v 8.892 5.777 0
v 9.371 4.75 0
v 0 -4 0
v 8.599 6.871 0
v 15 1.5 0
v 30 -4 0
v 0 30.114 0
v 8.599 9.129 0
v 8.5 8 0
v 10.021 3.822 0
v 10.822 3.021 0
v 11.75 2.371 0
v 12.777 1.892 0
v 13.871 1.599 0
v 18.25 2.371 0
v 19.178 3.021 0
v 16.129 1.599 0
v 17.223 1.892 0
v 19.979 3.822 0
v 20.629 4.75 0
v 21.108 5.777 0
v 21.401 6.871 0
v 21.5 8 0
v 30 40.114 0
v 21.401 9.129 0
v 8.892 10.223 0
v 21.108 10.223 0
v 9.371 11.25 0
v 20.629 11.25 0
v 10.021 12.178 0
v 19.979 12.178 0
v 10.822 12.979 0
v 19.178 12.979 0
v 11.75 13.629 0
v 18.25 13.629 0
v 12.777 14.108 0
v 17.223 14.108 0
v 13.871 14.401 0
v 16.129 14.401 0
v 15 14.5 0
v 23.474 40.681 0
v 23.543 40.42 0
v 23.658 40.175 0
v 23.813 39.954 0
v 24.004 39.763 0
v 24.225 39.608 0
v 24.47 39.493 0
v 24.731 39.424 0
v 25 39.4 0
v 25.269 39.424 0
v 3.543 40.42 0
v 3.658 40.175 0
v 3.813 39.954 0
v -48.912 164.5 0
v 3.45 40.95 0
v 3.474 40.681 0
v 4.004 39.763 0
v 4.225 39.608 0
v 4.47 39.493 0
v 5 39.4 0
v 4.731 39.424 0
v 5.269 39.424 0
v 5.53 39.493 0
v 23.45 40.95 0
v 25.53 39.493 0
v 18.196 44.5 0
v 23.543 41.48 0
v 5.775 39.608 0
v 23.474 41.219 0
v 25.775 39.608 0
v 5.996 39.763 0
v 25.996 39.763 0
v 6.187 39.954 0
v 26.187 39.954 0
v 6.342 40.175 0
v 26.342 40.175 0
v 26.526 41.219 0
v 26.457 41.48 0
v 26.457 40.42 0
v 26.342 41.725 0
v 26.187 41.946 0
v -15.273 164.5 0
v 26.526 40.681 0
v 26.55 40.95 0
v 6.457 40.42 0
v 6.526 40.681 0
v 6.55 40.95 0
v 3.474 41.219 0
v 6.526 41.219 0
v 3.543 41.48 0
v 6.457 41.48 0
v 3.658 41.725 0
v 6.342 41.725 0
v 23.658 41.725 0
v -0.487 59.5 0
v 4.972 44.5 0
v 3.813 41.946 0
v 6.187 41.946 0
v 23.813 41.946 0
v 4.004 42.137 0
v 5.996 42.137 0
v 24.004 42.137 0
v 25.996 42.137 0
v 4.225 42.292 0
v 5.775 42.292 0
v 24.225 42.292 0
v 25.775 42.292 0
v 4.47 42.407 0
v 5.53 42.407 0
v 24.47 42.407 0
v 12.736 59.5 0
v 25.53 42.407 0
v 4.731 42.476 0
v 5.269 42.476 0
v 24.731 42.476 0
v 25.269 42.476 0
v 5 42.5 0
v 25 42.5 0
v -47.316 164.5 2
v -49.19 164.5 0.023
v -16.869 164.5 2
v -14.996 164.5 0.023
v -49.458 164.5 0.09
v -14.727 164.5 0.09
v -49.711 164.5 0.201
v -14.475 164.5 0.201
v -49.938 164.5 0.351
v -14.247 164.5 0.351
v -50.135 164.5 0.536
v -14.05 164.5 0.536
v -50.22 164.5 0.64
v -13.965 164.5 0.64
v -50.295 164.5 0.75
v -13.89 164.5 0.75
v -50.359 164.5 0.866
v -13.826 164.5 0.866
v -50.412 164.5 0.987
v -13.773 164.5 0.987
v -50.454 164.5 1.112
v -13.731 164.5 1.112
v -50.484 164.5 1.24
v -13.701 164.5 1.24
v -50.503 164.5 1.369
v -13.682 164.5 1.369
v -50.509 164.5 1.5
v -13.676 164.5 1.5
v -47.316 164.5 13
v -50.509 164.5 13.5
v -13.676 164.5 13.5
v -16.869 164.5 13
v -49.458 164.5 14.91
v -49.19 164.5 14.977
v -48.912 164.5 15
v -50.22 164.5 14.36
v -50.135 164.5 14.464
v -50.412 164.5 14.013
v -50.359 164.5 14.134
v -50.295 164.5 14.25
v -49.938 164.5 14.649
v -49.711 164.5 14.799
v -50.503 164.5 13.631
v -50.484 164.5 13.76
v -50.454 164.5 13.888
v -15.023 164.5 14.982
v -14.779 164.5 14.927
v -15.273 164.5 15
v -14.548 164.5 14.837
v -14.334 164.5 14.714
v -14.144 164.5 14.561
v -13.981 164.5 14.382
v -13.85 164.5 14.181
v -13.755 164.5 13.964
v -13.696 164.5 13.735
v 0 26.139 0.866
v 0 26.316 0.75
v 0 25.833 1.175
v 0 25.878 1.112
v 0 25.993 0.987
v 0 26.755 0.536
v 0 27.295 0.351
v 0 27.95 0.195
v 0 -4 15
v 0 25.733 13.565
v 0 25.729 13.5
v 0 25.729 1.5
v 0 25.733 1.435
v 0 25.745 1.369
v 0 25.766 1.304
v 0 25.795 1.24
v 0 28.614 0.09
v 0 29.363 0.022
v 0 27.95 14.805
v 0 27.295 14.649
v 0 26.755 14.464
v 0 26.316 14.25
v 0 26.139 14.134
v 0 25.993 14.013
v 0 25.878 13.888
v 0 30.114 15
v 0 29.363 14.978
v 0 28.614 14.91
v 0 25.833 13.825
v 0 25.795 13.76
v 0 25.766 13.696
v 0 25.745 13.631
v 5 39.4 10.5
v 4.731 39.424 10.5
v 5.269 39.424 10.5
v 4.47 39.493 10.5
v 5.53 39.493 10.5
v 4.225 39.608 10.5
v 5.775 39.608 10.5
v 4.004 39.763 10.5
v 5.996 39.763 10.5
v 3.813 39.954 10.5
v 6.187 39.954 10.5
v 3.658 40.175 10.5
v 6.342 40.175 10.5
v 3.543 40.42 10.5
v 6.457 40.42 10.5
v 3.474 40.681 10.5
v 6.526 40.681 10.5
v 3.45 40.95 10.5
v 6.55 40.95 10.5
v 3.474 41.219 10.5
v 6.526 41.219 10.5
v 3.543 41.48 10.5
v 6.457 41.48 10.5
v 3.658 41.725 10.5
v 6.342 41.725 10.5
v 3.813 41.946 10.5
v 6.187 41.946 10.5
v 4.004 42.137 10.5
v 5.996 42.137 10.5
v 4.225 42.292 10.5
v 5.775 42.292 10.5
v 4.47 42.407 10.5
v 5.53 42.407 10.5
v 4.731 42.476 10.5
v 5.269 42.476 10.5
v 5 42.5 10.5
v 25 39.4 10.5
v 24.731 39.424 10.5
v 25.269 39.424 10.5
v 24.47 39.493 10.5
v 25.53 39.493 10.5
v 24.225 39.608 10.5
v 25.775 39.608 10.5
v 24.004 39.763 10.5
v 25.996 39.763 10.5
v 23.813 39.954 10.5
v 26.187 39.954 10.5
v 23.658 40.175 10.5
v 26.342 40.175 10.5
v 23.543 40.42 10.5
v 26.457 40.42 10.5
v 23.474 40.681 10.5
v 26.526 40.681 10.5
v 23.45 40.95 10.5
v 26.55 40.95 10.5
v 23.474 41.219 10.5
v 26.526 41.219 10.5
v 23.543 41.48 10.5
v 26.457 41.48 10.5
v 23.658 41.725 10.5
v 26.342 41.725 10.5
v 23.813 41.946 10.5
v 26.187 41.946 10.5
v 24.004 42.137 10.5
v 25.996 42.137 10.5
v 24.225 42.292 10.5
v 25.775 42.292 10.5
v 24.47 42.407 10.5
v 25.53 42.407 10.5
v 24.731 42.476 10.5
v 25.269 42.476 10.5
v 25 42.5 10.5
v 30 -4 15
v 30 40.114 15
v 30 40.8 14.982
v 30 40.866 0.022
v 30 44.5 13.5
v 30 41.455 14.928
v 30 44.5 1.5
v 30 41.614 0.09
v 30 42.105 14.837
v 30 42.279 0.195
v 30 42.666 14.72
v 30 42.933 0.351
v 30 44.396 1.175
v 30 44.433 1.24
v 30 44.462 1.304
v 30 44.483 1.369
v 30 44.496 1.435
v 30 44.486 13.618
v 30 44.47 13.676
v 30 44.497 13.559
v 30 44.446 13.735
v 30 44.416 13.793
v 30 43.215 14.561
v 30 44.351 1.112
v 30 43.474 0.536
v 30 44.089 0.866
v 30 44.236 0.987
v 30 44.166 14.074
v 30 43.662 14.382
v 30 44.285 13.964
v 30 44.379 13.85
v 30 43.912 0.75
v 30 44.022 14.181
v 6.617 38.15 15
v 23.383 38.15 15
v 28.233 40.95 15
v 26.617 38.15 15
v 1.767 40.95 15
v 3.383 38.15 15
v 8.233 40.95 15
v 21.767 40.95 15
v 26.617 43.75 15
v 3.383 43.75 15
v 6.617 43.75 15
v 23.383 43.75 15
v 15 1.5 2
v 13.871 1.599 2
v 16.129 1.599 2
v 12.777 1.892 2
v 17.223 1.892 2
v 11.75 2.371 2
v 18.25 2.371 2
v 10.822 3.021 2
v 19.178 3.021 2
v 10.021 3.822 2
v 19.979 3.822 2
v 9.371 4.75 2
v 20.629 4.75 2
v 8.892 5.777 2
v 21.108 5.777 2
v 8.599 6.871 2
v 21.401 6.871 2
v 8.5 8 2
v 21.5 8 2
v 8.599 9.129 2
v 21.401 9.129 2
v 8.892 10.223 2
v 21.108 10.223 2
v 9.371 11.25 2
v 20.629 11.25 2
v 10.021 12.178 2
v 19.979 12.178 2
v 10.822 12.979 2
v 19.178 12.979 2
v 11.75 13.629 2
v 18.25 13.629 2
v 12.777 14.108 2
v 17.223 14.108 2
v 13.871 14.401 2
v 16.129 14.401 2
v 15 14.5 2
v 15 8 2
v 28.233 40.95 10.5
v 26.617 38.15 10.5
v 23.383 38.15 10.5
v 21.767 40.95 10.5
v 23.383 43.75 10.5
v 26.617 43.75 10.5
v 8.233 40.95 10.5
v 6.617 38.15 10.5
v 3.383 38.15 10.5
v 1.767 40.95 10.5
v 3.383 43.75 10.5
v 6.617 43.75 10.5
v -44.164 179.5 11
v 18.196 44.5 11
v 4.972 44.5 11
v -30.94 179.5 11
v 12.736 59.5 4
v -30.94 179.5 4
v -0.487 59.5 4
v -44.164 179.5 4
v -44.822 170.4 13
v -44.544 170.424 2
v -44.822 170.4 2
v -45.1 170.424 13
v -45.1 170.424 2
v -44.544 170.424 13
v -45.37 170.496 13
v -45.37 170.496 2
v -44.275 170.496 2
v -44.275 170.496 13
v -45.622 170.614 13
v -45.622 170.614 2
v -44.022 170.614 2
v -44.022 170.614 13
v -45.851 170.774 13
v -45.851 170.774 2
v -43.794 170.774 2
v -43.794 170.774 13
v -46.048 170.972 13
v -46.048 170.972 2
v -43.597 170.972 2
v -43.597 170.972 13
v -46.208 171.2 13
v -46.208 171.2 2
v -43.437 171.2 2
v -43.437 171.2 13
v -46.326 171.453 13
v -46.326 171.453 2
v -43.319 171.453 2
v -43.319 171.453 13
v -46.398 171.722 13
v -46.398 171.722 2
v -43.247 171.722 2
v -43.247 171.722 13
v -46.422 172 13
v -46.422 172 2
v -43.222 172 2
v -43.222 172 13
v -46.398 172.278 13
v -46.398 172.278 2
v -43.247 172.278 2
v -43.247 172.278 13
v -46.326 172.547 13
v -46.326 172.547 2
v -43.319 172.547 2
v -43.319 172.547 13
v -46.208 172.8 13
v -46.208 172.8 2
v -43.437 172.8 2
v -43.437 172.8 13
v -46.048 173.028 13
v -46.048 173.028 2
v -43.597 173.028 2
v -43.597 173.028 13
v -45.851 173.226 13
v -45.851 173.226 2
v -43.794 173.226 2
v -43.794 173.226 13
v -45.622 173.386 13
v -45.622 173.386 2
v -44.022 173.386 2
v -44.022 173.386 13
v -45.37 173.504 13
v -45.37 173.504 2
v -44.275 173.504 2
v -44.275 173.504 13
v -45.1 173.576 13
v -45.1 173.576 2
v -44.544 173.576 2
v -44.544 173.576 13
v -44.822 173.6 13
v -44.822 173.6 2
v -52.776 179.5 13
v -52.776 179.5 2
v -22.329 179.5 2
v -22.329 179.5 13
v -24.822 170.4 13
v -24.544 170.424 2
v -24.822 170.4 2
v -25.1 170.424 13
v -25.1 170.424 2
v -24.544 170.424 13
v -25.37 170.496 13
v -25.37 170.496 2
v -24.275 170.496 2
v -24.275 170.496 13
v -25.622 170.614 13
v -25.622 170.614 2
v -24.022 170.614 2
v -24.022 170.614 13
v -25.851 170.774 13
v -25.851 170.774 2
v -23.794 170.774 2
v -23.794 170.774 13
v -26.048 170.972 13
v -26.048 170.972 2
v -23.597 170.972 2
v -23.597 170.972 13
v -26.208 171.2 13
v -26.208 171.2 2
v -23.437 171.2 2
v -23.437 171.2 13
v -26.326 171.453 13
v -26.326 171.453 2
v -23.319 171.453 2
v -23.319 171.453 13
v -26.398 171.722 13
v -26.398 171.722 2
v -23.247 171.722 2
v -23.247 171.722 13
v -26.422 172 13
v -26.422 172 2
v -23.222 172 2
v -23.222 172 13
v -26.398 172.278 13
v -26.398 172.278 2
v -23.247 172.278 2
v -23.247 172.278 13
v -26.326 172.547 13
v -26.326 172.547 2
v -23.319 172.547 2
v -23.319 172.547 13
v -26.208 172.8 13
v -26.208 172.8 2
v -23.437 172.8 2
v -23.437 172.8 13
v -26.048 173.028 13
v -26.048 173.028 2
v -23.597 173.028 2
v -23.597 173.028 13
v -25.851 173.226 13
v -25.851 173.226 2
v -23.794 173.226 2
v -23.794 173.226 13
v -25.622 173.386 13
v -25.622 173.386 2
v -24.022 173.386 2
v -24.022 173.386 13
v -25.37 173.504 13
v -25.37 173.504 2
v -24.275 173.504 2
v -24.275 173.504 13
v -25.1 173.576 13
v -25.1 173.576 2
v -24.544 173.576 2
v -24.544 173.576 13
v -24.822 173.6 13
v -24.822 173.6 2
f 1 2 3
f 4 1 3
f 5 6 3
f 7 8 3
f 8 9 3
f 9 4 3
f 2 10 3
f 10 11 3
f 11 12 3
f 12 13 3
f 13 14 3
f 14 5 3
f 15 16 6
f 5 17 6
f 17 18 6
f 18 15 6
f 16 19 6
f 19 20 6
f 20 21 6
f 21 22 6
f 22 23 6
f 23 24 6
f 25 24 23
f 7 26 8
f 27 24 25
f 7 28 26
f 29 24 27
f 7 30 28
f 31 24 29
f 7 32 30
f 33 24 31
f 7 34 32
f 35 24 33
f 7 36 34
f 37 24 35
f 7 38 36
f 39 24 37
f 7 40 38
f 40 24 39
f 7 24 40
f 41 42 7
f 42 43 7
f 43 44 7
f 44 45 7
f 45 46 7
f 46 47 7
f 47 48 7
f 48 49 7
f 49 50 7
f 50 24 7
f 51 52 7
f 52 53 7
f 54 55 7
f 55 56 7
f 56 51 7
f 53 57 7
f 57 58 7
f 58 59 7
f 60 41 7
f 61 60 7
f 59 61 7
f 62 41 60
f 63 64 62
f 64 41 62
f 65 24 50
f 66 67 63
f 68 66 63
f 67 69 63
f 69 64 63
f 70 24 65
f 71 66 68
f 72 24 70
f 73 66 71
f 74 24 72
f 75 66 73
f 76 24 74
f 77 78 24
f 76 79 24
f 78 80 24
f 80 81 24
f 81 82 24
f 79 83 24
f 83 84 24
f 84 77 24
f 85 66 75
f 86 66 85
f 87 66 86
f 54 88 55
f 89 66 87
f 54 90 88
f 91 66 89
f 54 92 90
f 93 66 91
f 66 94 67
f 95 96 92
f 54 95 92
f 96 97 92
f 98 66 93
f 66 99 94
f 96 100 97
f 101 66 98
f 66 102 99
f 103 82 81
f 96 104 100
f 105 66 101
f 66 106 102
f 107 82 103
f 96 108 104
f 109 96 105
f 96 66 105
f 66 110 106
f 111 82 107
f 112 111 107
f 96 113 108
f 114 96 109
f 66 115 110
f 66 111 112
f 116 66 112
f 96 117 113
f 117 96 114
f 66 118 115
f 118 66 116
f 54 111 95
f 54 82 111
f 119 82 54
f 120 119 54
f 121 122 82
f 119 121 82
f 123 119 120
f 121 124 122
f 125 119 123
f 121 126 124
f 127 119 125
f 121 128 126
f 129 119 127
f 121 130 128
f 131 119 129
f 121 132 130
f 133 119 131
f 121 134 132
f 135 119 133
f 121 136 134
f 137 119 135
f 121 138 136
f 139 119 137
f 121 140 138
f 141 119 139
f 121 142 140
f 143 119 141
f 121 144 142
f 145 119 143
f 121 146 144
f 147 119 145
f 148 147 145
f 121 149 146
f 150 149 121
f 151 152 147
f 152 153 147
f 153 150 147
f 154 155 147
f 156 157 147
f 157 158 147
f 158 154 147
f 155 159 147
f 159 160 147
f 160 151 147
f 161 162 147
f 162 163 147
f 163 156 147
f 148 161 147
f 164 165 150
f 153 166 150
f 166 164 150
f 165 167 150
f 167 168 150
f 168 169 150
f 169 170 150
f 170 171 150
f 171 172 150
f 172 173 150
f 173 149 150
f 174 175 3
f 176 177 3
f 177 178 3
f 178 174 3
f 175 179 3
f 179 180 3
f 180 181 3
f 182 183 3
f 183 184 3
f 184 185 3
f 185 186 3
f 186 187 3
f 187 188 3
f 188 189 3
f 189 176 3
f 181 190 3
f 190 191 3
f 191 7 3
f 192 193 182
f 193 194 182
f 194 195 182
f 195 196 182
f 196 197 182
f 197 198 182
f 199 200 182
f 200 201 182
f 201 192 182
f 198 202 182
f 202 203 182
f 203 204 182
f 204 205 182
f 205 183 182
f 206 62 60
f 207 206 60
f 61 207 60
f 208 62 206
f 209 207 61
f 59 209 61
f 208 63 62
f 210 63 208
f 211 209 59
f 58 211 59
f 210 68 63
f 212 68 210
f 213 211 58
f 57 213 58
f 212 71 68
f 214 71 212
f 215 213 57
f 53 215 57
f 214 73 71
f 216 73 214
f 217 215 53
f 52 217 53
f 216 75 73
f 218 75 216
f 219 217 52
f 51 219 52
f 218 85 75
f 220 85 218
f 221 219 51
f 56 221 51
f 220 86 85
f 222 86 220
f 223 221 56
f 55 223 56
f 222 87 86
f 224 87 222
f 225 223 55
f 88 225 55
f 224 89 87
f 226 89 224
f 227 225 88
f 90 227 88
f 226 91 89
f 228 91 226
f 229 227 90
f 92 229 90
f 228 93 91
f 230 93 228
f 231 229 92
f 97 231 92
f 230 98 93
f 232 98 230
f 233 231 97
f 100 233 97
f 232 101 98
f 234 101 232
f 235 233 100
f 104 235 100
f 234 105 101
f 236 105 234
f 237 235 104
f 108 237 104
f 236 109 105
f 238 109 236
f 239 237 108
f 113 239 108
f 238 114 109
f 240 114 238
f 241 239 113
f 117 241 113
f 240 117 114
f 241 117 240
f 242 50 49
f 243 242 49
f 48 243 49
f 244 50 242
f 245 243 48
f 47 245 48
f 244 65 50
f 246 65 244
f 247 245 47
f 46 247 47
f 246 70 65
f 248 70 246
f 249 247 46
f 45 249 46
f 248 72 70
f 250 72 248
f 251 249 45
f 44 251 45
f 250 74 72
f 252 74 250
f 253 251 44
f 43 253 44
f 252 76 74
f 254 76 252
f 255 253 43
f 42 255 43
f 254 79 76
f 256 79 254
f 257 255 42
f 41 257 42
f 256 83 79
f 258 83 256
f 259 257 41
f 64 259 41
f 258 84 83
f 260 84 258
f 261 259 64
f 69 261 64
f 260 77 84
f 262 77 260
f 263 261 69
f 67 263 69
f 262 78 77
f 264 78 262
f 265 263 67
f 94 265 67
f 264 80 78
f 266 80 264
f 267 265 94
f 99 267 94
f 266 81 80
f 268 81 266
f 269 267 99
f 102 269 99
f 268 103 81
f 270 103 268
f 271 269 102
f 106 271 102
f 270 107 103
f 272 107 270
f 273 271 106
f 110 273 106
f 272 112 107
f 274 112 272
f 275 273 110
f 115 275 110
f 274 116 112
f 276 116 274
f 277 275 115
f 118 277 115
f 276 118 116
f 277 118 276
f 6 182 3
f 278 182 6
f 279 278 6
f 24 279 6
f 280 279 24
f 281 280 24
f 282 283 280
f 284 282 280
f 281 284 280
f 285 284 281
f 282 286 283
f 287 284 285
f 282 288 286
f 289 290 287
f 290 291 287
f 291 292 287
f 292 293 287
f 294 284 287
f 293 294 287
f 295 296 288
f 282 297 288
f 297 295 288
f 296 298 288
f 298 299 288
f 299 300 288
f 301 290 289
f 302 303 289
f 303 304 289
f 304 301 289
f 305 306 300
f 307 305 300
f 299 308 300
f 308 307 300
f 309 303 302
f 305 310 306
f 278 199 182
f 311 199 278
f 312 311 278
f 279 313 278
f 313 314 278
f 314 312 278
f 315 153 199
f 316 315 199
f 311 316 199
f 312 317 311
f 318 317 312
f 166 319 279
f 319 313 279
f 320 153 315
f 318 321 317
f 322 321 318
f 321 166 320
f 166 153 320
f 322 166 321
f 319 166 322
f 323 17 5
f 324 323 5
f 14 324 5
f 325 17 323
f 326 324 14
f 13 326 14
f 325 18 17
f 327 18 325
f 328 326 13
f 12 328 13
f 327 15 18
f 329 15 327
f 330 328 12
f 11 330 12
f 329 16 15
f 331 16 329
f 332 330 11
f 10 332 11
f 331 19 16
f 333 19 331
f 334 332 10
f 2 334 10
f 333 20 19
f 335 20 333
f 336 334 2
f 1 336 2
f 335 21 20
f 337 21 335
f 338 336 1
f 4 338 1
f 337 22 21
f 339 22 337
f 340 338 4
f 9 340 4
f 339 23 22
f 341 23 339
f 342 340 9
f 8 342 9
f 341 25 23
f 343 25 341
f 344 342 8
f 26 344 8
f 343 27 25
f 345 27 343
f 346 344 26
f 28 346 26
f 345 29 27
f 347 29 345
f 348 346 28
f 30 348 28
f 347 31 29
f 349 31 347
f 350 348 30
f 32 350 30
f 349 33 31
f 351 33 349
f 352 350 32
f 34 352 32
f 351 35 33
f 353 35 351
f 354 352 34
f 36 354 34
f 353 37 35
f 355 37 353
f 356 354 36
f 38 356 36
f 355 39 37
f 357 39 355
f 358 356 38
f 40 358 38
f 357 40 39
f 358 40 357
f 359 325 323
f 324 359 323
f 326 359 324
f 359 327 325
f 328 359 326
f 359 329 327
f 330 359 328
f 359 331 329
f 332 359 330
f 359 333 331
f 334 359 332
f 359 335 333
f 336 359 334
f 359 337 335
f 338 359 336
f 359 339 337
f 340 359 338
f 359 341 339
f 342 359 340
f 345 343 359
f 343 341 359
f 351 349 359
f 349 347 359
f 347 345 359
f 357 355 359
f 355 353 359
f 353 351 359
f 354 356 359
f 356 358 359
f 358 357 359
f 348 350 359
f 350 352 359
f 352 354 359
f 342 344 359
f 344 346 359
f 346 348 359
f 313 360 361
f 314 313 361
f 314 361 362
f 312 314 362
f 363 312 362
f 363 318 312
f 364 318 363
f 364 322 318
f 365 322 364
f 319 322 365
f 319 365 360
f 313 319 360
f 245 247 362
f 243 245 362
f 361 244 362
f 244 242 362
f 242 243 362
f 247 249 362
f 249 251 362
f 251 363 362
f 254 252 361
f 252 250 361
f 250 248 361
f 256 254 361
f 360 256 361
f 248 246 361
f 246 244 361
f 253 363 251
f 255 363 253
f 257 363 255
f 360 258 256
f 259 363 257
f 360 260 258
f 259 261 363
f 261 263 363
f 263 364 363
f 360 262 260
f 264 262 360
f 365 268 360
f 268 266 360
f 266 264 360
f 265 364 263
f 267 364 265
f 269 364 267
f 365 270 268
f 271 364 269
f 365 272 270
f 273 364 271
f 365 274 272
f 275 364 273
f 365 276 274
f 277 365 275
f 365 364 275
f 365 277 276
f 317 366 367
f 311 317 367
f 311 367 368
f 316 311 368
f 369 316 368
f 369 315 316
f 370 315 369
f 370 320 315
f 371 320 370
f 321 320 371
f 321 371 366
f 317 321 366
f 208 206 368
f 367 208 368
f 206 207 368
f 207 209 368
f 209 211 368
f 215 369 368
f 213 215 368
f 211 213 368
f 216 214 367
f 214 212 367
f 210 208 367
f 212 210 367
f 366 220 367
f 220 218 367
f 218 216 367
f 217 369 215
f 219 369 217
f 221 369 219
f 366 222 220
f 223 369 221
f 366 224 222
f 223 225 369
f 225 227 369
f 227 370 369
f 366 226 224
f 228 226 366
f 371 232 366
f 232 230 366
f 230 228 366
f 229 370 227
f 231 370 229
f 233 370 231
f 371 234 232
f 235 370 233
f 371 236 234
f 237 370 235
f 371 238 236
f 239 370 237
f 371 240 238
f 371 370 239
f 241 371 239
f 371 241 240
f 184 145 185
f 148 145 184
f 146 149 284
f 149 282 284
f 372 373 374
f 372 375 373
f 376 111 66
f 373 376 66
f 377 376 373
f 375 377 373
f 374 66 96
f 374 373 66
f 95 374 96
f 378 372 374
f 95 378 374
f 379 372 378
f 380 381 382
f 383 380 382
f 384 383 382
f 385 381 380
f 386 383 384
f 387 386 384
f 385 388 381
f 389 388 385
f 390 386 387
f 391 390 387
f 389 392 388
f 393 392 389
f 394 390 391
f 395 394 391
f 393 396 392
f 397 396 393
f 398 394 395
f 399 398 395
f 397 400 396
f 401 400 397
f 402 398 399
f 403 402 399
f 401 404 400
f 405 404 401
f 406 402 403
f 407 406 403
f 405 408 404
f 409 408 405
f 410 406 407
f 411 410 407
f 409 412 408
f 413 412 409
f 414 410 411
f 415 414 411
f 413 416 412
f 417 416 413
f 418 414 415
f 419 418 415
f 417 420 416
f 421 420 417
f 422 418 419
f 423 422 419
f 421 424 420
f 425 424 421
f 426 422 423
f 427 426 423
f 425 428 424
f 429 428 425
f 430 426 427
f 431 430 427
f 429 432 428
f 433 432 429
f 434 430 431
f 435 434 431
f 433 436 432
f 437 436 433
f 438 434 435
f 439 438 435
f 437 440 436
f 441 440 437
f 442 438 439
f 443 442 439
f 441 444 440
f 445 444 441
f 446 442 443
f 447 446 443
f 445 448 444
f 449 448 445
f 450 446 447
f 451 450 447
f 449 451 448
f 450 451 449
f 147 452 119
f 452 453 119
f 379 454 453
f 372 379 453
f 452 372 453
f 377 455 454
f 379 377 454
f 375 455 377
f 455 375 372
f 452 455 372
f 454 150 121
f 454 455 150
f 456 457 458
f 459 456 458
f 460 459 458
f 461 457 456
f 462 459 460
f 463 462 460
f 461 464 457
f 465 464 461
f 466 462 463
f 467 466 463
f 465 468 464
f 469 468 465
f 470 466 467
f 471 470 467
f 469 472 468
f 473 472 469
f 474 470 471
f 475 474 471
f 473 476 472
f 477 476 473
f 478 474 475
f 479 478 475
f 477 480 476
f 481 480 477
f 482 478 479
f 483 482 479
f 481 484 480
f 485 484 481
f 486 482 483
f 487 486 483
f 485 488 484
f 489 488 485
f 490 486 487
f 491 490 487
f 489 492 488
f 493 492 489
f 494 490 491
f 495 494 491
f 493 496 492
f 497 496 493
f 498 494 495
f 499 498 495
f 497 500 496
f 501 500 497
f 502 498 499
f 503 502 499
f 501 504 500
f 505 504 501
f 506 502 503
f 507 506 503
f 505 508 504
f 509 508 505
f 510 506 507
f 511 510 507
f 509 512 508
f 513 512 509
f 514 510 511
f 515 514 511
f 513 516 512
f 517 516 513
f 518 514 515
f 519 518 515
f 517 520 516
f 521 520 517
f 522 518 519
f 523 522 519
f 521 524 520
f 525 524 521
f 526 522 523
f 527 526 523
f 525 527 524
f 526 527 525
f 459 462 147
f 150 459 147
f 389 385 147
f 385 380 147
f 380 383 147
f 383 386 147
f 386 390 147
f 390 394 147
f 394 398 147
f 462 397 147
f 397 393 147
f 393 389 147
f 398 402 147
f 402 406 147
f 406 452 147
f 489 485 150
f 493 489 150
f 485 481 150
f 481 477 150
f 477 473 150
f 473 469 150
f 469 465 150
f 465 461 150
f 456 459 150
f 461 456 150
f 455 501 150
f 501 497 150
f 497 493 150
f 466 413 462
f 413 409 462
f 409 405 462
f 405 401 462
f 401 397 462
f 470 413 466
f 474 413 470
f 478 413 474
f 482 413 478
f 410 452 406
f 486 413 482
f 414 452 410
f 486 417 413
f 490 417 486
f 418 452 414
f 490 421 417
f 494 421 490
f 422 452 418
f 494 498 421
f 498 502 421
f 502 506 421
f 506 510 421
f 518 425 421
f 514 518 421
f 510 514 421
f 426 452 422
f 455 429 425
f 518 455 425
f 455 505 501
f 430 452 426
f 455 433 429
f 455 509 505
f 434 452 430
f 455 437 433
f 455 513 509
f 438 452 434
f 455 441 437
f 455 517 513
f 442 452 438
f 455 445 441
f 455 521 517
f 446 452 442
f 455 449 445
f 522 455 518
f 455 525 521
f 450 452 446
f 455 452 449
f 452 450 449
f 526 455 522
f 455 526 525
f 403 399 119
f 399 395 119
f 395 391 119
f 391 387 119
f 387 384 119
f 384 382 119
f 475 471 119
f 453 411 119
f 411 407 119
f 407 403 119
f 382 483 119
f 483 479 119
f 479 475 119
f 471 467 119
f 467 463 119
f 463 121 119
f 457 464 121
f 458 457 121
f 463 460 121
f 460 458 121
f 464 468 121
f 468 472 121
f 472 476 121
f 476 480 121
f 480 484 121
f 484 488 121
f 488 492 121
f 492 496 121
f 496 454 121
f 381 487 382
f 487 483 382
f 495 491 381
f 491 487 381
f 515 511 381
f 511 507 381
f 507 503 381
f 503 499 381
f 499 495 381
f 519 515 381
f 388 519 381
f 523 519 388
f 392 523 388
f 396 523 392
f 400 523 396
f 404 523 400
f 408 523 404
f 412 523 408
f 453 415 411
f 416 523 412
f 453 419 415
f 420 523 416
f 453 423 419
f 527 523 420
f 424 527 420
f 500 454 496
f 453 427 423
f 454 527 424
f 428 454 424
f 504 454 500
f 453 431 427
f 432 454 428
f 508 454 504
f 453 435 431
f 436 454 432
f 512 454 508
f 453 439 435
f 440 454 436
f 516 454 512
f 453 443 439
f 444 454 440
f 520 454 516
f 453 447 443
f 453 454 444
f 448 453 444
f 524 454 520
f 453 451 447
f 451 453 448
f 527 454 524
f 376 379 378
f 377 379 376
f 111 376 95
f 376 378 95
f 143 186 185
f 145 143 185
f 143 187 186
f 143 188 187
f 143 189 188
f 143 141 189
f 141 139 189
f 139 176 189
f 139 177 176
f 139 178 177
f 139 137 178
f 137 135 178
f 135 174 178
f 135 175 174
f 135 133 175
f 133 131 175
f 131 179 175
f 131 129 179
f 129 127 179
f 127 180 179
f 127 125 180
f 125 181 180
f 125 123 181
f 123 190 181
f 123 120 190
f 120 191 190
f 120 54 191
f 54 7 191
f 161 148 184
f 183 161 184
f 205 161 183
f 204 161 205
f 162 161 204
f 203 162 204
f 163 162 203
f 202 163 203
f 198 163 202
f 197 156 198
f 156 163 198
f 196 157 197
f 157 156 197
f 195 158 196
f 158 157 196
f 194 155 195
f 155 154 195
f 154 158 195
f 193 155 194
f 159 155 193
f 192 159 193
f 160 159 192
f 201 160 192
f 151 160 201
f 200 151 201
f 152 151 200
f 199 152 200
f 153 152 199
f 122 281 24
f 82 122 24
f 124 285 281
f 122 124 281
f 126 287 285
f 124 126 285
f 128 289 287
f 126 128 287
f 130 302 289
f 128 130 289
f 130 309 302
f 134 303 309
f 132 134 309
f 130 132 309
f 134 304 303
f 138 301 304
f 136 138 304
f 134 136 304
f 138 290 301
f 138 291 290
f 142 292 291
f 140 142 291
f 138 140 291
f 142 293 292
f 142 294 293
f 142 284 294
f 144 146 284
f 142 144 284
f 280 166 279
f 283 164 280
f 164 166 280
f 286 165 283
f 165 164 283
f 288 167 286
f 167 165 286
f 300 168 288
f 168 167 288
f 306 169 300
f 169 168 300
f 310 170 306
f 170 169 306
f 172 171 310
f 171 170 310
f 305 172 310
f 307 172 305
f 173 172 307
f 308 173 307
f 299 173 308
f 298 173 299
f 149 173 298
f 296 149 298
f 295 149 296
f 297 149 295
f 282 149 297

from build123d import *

# Parameters (mm, degrees)
SKETCH1_W            = 30
SKETCH1_H            = 48.5
SKETCH1_R            = 1.55
BOSS_EXTRUDE1_DEPTH  = 15
SKETCH1_3_R          = 6.5
CUT_EXTRUDE2_DEPTH   = 2
CUT_EXTRUDE3_DEPTH   = 4.5
BOSS_EXTRUDE2_DEPTH  = 15
CUT_EXTRUDE4_DEPTH   = 11
SKETCH2_5_R          = 1.6
BOSS_EXTRUDE4_DEPTH  = 13
SKETCH2_6_R          = 1.6
CUT_EXTRUDE5_DEPTH   = 2
CUT_EXTRUDE6_DEPTH   = 11
BOSS_EXTRUDE8_DEPTH  = 4
BOSS_EXTRUDE10_DEPTH = 4
CUT_EXTRUDE8_DEPTH   = 2
CUT_EXTRUDE9_REACH   = 17
FILLET1_R            = 1.5


with BuildPart() as part:
    # Sketch1 → Boss-Extrude1 (new body)
    with BuildSketch(Plane.XY):
        with Locations((15, 20.25)):
            Rectangle(SKETCH1_W, SKETCH1_H)
        with Locations((5, 40.95)):
            Circle(SKETCH1_R, mode=Mode.SUBTRACT)
        with Locations((25, 40.95)):
            Circle(SKETCH1_R, mode=Mode.SUBTRACT)
    extrude(amount=BOSS_EXTRUDE1_DEPTH)

    # Sketch1<3> → Cut-Extrude2 (cut)
    with BuildSketch(Plane.XY):
        with Locations((15, 8)):
            Circle(SKETCH1_3_R)
    extrude(amount=CUT_EXTRUDE2_DEPTH, mode=Mode.SUBTRACT)

    # Sketch4 → Cut-Extrude3 (cut)
    with BuildSketch(Plane.XY.offset(15)):
        Polygon((8.233161507, 40.95), (6.616580754, 43.75), (3.383419246, 43.75), (1.766838493, 40.95), (3.383419246, 38.15), (6.616580754, 38.15), align=None)
        Polygon((28.233161507, 40.95), (26.616580754, 43.75), (23.383419246, 43.75), (21.766838493, 40.95), (23.383419246, 38.15), (26.616580754, 38.15), align=None)
    extrude(amount=-CUT_EXTRUDE3_DEPTH, mode=Mode.SUBTRACT)

    # Sketch2 → Boss-Extrude2 (add)
    with BuildSketch(Plane.XY):
        Polygon((-25.480933218, 164.5), (18.195494894, 44.5), (30, 44.5), (-13.676428112, 164.5), (-16.868961429, 164.5), align=None)
        Polygon((-32.092545942, 164.5), (-38.704158666, 164.5), (4.972269446, 44.5), (18.195494894, 44.5), (-25.480933218, 164.5), align=None)
        Polygon((-47.316130455, 164.5), (0, 34.5), (0, 44.5), (4.972269446, 44.5), (-38.704158666, 164.5), align=None)
        Polygon((-3.192533317, 34.5), (0, 34.5), (-47.316130455, 164.5), (-50.508663772, 164.5), align=None)
        Polygon((0, 25.7285868), (0, 34.5), (-3.192533317, 34.5), align=None)
    extrude(amount=BOSS_EXTRUDE2_DEPTH)

    # Sketch2<3> → Cut-Extrude4 (cut)
    with BuildSketch(Plane.XY):
        Polygon((-32.092545942, 164.5), (-38.704158666, 164.5), (4.972269446, 44.5), (18.195494894, 44.5), (-25.480933218, 164.5), align=None)
        Polygon((-41.433935423, 172), (-38.704158666, 164.5), (-32.092545942, 164.5), (-34.822322699, 172), align=None)
        Polygon((-37.552099456, 179.5), (-44.16371218, 179.5), (-42.022322699, 173.616580754), (-41.433935423, 172), (-34.822322699, 172), align=None)
        Polygon((-30.940486732, 179.5), (-37.552099456, 179.5), (-34.822322699, 172), (-28.210709975, 172), align=None)
        Polygon((-34.822322699, 172), (-32.092545942, 164.5), (-25.480933218, 164.5), (-27.622322699, 170.383419246), (-28.210709975, 172), align=None)
    extrude(amount=CUT_EXTRUDE4_DEPTH, mode=Mode.SUBTRACT)

    # Sketch2<5> → Boss-Extrude4 (add)
    with BuildSketch(Plane.XY):
        Polygon((-52.775683969, 179.5), (-47.316130455, 164.5), (-16.868961429, 164.5), (-22.328514943, 179.5), align=None)
        with Locations((-44.822322699, 172)):
            Circle(SKETCH2_5_R, mode=Mode.SUBTRACT)
        with Locations((-24.822322699, 172)):
            Circle(SKETCH2_5_R, mode=Mode.SUBTRACT)
    extrude(amount=BOSS_EXTRUDE4_DEPTH)

    # Sketch2<6> → Cut-Extrude5 (cut)
    with BuildSketch(Plane.XY):
        Polygon((-52.775683969, 179.5), (-47.316130455, 164.5), (-16.868961429, 164.5), (-22.328514943, 179.5), align=None)
        with Locations((-44.822322699, 172)):
            Circle(SKETCH2_6_R, mode=Mode.SUBTRACT)
        with Locations((-24.822322699, 172)):
            Circle(SKETCH2_6_R, mode=Mode.SUBTRACT)
    extrude(amount=CUT_EXTRUDE5_DEPTH, mode=Mode.SUBTRACT)

    # Sketch2<7> → Cut-Extrude6 (cut)
    with BuildSketch(Plane.XY):
        Polygon((-37.552099456, 179.5), (-44.16371218, 179.5), (-42.022322699, 173.616580754), (-41.433935423, 172), (-34.822322699, 172), align=None)
        Polygon((-41.433935423, 172), (-38.704158666, 164.5), (-32.092545942, 164.5), (-34.822322699, 172), align=None)
        Polygon((-34.822322699, 172), (-32.092545942, 164.5), (-25.480933218, 164.5), (-27.622322699, 170.383419246), (-28.210709975, 172), align=None)
        Polygon((-30.940486732, 179.5), (-37.552099456, 179.5), (-34.822322699, 172), (-28.210709975, 172), align=None)
    extrude(amount=CUT_EXTRUDE6_DEPTH, mode=Mode.SUBTRACT)

    # Sketch2<9> → Boss-Extrude8 (add)
    with BuildSketch(Plane.XY):
        Polygon((-32.092545942, 164.5), (-38.704158666, 164.5), (4.972269446, 44.5), (18.195494894, 44.5), (-25.480933218, 164.5), align=None)
    extrude(amount=BOSS_EXTRUDE8_DEPTH)

    # Sketch2<11> → Boss-Extrude10 (add)
    with BuildSketch(Plane.XY):
        Polygon((-41.433935423, 172), (-38.704158666, 164.5), (-32.092545942, 164.5), (-34.822322699, 172), align=None)
        Polygon((-37.552099456, 179.5), (-44.16371218, 179.5), (-42.022322699, 173.616580754), (-41.433935423, 172), (-34.822322699, 172), align=None)
        Polygon((-34.822322699, 172), (-32.092545942, 164.5), (-25.480933218, 164.5), (-27.622322699, 170.383419246), (-28.210709975, 172), align=None)
        Polygon((-30.940486732, 179.5), (-37.552099456, 179.5), (-34.822322699, 172), (-28.210709975, 172), align=None)
    extrude(amount=BOSS_EXTRUDE10_DEPTH)

    # Sketch2<12> → Cut-Extrude8 (cut)
    with BuildSketch(Plane.XY):
        Polygon((-37.552099456, 179.5), (-44.16371218, 179.5), (-42.022322699, 173.616580754), (-41.433935423, 172), (-34.822322699, 172), align=None)
        Polygon((-41.433935423, 172), (-38.704158666, 164.5), (-32.092545942, 164.5), (-34.822322699, 172), align=None)
        Polygon((-34.822322699, 172), (-32.092545942, 164.5), (-25.480933218, 164.5), (-27.622322699, 170.383419246), (-28.210709975, 172), align=None)
        Polygon((-30.940486732, 179.5), (-37.552099456, 179.5), (-34.822322699, 172), (-28.210709975, 172), align=None)
    extrude(amount=CUT_EXTRUDE8_DEPTH, mode=Mode.SUBTRACT)

    # Sketch6 → Cut-Extrude9 (cut, up to next)
    with BuildSketch(Plane(origin=(0, 0, 0), x_dir=(-1, 0, 0), z_dir=(0, 0, -1)), mode=Mode.PRIVATE) as cut_extrude9_sk1:
        Polygon((-18.195494894, 44.5), (-4.972269446, 44.5), (0.487284068, 59.5), (-12.73594138, 59.5), align=None)
    cut_extrude9_tool1 = extrude(cut_extrude9_sk1.sketch, amount=-CUT_EXTRUDE9_REACH, mode=Mode.PRIVATE) & part.part
    add(cut_extrude9_tool1.solids().sort_by_distance((8.854105, 52, 0))[0], mode=Mode.SUBTRACT)

    # Fillet1
    fillet1_edges = [part.edges().sort_by_distance(p)[0] for p in [
        (-25.254331886, 95.1142934, 0),
        (8.161785944, 104.5, 0),
        (-25.254331886, 95.1142934, 15),
        (8.161785944, 104.5, 15),
    ]]
    fillet(fillet1_edges, radius=FILLET1_R)


solid = part.part
